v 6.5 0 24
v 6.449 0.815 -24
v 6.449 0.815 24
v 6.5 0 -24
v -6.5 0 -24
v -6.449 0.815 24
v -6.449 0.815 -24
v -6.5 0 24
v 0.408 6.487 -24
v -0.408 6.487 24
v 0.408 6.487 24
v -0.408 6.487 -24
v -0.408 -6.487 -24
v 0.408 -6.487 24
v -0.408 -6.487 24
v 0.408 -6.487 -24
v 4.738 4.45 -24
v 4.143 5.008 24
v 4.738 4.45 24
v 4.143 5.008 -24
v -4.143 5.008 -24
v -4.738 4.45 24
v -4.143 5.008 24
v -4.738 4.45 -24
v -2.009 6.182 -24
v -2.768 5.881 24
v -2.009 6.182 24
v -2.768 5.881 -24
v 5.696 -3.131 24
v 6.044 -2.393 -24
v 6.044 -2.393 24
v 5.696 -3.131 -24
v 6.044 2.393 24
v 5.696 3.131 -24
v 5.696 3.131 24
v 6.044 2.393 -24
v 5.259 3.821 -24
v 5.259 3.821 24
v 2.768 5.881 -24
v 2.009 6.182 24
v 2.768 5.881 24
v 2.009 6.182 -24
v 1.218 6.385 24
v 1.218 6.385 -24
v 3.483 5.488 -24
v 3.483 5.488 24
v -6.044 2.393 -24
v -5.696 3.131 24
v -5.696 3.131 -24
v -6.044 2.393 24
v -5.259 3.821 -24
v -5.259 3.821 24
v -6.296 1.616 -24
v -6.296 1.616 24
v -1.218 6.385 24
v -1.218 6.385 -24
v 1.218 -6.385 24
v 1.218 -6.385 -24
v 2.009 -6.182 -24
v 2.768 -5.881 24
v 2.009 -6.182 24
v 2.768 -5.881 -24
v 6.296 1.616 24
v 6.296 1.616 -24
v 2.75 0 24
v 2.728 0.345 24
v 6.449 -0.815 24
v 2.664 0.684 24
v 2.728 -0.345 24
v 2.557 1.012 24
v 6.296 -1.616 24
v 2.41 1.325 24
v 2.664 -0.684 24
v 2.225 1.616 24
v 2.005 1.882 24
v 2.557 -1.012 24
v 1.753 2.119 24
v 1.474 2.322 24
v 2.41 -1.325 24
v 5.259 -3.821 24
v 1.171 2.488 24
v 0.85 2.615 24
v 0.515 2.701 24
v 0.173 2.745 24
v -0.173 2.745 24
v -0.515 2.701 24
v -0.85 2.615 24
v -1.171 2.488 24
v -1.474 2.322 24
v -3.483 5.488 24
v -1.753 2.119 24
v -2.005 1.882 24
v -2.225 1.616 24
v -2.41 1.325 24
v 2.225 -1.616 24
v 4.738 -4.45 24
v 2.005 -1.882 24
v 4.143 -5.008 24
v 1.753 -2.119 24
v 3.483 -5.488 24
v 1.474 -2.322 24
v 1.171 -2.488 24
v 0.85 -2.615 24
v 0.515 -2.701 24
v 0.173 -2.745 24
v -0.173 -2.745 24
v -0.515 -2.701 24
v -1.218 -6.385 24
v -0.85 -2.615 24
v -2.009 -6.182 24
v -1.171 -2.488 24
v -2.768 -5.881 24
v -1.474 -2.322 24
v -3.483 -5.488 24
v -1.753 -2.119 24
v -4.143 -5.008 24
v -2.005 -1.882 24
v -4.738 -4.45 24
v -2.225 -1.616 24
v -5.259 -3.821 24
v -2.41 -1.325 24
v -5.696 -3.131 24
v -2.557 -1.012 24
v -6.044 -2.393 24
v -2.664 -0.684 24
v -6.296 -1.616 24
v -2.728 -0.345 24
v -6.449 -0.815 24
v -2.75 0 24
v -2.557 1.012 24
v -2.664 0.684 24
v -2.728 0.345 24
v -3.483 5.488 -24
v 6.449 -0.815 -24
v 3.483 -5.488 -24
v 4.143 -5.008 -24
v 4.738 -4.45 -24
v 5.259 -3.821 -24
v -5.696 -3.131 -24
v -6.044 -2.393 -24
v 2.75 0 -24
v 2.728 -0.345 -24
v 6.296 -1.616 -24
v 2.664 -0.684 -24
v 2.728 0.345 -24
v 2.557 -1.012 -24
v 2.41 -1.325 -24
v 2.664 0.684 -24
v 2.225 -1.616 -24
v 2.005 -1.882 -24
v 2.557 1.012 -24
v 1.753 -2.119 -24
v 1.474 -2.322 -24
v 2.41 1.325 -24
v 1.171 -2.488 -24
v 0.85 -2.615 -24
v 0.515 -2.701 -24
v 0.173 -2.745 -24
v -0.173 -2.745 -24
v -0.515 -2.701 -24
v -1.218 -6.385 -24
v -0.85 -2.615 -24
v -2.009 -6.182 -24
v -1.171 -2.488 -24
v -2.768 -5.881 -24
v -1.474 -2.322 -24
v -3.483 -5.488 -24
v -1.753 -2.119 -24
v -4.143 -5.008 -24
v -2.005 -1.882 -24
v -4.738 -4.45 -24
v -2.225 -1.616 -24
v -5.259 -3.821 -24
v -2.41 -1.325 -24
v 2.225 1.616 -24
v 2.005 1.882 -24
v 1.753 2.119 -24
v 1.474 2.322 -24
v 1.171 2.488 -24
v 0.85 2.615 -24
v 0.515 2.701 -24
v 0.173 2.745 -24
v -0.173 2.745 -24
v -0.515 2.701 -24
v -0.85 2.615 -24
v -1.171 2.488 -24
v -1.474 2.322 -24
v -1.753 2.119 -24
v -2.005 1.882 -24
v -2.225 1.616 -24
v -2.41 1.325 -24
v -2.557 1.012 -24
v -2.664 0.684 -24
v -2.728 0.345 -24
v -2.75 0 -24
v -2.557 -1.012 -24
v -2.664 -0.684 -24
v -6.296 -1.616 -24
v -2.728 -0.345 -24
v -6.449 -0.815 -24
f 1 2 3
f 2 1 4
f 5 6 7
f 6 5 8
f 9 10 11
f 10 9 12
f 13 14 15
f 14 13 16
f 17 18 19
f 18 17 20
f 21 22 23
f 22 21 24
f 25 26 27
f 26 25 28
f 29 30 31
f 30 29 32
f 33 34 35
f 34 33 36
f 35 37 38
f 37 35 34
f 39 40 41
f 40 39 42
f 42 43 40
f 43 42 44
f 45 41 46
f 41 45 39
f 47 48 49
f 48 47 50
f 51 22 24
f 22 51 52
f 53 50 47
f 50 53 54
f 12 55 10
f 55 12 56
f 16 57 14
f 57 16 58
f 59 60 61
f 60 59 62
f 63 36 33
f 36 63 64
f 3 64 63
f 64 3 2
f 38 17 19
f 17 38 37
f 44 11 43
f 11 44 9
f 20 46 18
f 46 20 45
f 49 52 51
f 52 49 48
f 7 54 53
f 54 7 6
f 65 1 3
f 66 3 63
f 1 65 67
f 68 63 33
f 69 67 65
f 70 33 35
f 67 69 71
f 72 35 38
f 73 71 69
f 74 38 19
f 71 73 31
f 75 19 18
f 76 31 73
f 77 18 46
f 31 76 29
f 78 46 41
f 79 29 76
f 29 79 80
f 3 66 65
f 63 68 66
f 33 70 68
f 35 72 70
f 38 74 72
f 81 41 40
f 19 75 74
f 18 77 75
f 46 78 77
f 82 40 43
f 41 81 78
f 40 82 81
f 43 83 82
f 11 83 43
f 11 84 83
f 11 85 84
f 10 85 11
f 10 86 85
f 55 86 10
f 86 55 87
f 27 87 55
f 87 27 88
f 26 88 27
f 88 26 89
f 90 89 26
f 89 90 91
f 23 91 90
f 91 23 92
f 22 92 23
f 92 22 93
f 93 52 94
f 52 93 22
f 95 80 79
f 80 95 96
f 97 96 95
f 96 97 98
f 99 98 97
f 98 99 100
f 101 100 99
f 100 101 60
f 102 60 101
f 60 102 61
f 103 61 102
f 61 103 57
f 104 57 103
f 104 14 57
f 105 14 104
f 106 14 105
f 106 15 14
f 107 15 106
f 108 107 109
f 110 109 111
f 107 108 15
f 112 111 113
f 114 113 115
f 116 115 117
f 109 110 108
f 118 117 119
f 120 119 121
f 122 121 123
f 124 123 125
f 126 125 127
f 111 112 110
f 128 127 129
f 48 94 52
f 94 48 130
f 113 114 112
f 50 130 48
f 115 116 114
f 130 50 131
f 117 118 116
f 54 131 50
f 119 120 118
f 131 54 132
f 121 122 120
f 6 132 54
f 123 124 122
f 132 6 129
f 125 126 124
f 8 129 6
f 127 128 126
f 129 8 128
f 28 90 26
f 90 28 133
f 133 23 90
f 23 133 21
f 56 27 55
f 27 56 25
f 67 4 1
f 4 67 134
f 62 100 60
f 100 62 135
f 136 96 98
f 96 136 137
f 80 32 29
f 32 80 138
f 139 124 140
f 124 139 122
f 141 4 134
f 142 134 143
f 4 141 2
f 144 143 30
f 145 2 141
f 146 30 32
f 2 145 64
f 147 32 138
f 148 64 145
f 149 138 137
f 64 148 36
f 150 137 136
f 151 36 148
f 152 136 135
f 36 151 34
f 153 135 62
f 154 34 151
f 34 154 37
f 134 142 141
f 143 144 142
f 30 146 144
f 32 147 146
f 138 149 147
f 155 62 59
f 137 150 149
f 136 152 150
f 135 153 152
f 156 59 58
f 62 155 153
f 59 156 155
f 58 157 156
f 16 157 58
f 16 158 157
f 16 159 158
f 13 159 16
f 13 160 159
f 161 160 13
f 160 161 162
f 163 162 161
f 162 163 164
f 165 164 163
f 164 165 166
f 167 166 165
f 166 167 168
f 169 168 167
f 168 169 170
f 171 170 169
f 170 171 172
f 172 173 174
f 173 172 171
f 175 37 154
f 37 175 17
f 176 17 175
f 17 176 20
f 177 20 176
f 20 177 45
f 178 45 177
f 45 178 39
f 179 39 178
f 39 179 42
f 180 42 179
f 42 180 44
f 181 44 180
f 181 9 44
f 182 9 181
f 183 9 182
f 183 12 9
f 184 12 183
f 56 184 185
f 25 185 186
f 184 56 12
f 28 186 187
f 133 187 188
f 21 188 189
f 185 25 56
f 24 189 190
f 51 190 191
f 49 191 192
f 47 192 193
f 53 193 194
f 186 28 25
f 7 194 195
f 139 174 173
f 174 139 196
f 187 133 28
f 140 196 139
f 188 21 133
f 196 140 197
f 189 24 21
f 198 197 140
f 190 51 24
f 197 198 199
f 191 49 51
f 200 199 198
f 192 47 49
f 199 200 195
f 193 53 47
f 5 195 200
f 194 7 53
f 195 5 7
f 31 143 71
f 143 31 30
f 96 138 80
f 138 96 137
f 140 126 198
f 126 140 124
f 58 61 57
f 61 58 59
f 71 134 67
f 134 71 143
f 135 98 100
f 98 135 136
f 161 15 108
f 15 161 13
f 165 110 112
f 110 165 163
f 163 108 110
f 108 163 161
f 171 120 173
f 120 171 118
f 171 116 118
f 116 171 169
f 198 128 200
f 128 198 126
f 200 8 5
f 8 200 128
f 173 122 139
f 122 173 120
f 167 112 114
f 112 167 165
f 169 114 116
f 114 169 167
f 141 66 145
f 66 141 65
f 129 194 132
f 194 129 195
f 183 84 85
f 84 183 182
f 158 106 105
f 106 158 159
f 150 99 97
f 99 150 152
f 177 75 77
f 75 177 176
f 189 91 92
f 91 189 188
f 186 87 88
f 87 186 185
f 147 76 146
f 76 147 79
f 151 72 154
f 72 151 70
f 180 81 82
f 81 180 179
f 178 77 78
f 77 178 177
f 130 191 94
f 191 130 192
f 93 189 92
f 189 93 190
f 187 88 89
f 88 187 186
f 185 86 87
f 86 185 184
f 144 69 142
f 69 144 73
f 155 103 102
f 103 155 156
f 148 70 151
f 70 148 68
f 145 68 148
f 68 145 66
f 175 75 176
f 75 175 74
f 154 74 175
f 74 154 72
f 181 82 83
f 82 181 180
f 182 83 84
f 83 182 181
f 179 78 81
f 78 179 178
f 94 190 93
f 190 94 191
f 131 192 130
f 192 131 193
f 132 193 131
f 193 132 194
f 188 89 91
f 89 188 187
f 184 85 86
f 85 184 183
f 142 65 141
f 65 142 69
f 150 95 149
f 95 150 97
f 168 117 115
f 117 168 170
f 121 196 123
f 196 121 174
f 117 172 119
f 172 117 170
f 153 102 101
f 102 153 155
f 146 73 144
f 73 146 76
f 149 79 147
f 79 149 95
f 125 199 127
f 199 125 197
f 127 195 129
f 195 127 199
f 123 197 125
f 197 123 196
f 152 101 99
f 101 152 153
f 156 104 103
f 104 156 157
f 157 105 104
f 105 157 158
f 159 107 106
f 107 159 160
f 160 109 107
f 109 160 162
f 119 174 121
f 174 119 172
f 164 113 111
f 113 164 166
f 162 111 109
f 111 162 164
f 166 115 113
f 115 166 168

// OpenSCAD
$fn = 50;


difference() {
	union() {
		translate(v = [0, 0, -24.0000000000]) {
			cylinder(h = 48, r = 6.5000000000);
		}
	}
	union() {
		translate(v = [0, 0, -100.0000000000]) {
			cylinder(h = 200, r = 2.7500000000);
		}
	}
}
